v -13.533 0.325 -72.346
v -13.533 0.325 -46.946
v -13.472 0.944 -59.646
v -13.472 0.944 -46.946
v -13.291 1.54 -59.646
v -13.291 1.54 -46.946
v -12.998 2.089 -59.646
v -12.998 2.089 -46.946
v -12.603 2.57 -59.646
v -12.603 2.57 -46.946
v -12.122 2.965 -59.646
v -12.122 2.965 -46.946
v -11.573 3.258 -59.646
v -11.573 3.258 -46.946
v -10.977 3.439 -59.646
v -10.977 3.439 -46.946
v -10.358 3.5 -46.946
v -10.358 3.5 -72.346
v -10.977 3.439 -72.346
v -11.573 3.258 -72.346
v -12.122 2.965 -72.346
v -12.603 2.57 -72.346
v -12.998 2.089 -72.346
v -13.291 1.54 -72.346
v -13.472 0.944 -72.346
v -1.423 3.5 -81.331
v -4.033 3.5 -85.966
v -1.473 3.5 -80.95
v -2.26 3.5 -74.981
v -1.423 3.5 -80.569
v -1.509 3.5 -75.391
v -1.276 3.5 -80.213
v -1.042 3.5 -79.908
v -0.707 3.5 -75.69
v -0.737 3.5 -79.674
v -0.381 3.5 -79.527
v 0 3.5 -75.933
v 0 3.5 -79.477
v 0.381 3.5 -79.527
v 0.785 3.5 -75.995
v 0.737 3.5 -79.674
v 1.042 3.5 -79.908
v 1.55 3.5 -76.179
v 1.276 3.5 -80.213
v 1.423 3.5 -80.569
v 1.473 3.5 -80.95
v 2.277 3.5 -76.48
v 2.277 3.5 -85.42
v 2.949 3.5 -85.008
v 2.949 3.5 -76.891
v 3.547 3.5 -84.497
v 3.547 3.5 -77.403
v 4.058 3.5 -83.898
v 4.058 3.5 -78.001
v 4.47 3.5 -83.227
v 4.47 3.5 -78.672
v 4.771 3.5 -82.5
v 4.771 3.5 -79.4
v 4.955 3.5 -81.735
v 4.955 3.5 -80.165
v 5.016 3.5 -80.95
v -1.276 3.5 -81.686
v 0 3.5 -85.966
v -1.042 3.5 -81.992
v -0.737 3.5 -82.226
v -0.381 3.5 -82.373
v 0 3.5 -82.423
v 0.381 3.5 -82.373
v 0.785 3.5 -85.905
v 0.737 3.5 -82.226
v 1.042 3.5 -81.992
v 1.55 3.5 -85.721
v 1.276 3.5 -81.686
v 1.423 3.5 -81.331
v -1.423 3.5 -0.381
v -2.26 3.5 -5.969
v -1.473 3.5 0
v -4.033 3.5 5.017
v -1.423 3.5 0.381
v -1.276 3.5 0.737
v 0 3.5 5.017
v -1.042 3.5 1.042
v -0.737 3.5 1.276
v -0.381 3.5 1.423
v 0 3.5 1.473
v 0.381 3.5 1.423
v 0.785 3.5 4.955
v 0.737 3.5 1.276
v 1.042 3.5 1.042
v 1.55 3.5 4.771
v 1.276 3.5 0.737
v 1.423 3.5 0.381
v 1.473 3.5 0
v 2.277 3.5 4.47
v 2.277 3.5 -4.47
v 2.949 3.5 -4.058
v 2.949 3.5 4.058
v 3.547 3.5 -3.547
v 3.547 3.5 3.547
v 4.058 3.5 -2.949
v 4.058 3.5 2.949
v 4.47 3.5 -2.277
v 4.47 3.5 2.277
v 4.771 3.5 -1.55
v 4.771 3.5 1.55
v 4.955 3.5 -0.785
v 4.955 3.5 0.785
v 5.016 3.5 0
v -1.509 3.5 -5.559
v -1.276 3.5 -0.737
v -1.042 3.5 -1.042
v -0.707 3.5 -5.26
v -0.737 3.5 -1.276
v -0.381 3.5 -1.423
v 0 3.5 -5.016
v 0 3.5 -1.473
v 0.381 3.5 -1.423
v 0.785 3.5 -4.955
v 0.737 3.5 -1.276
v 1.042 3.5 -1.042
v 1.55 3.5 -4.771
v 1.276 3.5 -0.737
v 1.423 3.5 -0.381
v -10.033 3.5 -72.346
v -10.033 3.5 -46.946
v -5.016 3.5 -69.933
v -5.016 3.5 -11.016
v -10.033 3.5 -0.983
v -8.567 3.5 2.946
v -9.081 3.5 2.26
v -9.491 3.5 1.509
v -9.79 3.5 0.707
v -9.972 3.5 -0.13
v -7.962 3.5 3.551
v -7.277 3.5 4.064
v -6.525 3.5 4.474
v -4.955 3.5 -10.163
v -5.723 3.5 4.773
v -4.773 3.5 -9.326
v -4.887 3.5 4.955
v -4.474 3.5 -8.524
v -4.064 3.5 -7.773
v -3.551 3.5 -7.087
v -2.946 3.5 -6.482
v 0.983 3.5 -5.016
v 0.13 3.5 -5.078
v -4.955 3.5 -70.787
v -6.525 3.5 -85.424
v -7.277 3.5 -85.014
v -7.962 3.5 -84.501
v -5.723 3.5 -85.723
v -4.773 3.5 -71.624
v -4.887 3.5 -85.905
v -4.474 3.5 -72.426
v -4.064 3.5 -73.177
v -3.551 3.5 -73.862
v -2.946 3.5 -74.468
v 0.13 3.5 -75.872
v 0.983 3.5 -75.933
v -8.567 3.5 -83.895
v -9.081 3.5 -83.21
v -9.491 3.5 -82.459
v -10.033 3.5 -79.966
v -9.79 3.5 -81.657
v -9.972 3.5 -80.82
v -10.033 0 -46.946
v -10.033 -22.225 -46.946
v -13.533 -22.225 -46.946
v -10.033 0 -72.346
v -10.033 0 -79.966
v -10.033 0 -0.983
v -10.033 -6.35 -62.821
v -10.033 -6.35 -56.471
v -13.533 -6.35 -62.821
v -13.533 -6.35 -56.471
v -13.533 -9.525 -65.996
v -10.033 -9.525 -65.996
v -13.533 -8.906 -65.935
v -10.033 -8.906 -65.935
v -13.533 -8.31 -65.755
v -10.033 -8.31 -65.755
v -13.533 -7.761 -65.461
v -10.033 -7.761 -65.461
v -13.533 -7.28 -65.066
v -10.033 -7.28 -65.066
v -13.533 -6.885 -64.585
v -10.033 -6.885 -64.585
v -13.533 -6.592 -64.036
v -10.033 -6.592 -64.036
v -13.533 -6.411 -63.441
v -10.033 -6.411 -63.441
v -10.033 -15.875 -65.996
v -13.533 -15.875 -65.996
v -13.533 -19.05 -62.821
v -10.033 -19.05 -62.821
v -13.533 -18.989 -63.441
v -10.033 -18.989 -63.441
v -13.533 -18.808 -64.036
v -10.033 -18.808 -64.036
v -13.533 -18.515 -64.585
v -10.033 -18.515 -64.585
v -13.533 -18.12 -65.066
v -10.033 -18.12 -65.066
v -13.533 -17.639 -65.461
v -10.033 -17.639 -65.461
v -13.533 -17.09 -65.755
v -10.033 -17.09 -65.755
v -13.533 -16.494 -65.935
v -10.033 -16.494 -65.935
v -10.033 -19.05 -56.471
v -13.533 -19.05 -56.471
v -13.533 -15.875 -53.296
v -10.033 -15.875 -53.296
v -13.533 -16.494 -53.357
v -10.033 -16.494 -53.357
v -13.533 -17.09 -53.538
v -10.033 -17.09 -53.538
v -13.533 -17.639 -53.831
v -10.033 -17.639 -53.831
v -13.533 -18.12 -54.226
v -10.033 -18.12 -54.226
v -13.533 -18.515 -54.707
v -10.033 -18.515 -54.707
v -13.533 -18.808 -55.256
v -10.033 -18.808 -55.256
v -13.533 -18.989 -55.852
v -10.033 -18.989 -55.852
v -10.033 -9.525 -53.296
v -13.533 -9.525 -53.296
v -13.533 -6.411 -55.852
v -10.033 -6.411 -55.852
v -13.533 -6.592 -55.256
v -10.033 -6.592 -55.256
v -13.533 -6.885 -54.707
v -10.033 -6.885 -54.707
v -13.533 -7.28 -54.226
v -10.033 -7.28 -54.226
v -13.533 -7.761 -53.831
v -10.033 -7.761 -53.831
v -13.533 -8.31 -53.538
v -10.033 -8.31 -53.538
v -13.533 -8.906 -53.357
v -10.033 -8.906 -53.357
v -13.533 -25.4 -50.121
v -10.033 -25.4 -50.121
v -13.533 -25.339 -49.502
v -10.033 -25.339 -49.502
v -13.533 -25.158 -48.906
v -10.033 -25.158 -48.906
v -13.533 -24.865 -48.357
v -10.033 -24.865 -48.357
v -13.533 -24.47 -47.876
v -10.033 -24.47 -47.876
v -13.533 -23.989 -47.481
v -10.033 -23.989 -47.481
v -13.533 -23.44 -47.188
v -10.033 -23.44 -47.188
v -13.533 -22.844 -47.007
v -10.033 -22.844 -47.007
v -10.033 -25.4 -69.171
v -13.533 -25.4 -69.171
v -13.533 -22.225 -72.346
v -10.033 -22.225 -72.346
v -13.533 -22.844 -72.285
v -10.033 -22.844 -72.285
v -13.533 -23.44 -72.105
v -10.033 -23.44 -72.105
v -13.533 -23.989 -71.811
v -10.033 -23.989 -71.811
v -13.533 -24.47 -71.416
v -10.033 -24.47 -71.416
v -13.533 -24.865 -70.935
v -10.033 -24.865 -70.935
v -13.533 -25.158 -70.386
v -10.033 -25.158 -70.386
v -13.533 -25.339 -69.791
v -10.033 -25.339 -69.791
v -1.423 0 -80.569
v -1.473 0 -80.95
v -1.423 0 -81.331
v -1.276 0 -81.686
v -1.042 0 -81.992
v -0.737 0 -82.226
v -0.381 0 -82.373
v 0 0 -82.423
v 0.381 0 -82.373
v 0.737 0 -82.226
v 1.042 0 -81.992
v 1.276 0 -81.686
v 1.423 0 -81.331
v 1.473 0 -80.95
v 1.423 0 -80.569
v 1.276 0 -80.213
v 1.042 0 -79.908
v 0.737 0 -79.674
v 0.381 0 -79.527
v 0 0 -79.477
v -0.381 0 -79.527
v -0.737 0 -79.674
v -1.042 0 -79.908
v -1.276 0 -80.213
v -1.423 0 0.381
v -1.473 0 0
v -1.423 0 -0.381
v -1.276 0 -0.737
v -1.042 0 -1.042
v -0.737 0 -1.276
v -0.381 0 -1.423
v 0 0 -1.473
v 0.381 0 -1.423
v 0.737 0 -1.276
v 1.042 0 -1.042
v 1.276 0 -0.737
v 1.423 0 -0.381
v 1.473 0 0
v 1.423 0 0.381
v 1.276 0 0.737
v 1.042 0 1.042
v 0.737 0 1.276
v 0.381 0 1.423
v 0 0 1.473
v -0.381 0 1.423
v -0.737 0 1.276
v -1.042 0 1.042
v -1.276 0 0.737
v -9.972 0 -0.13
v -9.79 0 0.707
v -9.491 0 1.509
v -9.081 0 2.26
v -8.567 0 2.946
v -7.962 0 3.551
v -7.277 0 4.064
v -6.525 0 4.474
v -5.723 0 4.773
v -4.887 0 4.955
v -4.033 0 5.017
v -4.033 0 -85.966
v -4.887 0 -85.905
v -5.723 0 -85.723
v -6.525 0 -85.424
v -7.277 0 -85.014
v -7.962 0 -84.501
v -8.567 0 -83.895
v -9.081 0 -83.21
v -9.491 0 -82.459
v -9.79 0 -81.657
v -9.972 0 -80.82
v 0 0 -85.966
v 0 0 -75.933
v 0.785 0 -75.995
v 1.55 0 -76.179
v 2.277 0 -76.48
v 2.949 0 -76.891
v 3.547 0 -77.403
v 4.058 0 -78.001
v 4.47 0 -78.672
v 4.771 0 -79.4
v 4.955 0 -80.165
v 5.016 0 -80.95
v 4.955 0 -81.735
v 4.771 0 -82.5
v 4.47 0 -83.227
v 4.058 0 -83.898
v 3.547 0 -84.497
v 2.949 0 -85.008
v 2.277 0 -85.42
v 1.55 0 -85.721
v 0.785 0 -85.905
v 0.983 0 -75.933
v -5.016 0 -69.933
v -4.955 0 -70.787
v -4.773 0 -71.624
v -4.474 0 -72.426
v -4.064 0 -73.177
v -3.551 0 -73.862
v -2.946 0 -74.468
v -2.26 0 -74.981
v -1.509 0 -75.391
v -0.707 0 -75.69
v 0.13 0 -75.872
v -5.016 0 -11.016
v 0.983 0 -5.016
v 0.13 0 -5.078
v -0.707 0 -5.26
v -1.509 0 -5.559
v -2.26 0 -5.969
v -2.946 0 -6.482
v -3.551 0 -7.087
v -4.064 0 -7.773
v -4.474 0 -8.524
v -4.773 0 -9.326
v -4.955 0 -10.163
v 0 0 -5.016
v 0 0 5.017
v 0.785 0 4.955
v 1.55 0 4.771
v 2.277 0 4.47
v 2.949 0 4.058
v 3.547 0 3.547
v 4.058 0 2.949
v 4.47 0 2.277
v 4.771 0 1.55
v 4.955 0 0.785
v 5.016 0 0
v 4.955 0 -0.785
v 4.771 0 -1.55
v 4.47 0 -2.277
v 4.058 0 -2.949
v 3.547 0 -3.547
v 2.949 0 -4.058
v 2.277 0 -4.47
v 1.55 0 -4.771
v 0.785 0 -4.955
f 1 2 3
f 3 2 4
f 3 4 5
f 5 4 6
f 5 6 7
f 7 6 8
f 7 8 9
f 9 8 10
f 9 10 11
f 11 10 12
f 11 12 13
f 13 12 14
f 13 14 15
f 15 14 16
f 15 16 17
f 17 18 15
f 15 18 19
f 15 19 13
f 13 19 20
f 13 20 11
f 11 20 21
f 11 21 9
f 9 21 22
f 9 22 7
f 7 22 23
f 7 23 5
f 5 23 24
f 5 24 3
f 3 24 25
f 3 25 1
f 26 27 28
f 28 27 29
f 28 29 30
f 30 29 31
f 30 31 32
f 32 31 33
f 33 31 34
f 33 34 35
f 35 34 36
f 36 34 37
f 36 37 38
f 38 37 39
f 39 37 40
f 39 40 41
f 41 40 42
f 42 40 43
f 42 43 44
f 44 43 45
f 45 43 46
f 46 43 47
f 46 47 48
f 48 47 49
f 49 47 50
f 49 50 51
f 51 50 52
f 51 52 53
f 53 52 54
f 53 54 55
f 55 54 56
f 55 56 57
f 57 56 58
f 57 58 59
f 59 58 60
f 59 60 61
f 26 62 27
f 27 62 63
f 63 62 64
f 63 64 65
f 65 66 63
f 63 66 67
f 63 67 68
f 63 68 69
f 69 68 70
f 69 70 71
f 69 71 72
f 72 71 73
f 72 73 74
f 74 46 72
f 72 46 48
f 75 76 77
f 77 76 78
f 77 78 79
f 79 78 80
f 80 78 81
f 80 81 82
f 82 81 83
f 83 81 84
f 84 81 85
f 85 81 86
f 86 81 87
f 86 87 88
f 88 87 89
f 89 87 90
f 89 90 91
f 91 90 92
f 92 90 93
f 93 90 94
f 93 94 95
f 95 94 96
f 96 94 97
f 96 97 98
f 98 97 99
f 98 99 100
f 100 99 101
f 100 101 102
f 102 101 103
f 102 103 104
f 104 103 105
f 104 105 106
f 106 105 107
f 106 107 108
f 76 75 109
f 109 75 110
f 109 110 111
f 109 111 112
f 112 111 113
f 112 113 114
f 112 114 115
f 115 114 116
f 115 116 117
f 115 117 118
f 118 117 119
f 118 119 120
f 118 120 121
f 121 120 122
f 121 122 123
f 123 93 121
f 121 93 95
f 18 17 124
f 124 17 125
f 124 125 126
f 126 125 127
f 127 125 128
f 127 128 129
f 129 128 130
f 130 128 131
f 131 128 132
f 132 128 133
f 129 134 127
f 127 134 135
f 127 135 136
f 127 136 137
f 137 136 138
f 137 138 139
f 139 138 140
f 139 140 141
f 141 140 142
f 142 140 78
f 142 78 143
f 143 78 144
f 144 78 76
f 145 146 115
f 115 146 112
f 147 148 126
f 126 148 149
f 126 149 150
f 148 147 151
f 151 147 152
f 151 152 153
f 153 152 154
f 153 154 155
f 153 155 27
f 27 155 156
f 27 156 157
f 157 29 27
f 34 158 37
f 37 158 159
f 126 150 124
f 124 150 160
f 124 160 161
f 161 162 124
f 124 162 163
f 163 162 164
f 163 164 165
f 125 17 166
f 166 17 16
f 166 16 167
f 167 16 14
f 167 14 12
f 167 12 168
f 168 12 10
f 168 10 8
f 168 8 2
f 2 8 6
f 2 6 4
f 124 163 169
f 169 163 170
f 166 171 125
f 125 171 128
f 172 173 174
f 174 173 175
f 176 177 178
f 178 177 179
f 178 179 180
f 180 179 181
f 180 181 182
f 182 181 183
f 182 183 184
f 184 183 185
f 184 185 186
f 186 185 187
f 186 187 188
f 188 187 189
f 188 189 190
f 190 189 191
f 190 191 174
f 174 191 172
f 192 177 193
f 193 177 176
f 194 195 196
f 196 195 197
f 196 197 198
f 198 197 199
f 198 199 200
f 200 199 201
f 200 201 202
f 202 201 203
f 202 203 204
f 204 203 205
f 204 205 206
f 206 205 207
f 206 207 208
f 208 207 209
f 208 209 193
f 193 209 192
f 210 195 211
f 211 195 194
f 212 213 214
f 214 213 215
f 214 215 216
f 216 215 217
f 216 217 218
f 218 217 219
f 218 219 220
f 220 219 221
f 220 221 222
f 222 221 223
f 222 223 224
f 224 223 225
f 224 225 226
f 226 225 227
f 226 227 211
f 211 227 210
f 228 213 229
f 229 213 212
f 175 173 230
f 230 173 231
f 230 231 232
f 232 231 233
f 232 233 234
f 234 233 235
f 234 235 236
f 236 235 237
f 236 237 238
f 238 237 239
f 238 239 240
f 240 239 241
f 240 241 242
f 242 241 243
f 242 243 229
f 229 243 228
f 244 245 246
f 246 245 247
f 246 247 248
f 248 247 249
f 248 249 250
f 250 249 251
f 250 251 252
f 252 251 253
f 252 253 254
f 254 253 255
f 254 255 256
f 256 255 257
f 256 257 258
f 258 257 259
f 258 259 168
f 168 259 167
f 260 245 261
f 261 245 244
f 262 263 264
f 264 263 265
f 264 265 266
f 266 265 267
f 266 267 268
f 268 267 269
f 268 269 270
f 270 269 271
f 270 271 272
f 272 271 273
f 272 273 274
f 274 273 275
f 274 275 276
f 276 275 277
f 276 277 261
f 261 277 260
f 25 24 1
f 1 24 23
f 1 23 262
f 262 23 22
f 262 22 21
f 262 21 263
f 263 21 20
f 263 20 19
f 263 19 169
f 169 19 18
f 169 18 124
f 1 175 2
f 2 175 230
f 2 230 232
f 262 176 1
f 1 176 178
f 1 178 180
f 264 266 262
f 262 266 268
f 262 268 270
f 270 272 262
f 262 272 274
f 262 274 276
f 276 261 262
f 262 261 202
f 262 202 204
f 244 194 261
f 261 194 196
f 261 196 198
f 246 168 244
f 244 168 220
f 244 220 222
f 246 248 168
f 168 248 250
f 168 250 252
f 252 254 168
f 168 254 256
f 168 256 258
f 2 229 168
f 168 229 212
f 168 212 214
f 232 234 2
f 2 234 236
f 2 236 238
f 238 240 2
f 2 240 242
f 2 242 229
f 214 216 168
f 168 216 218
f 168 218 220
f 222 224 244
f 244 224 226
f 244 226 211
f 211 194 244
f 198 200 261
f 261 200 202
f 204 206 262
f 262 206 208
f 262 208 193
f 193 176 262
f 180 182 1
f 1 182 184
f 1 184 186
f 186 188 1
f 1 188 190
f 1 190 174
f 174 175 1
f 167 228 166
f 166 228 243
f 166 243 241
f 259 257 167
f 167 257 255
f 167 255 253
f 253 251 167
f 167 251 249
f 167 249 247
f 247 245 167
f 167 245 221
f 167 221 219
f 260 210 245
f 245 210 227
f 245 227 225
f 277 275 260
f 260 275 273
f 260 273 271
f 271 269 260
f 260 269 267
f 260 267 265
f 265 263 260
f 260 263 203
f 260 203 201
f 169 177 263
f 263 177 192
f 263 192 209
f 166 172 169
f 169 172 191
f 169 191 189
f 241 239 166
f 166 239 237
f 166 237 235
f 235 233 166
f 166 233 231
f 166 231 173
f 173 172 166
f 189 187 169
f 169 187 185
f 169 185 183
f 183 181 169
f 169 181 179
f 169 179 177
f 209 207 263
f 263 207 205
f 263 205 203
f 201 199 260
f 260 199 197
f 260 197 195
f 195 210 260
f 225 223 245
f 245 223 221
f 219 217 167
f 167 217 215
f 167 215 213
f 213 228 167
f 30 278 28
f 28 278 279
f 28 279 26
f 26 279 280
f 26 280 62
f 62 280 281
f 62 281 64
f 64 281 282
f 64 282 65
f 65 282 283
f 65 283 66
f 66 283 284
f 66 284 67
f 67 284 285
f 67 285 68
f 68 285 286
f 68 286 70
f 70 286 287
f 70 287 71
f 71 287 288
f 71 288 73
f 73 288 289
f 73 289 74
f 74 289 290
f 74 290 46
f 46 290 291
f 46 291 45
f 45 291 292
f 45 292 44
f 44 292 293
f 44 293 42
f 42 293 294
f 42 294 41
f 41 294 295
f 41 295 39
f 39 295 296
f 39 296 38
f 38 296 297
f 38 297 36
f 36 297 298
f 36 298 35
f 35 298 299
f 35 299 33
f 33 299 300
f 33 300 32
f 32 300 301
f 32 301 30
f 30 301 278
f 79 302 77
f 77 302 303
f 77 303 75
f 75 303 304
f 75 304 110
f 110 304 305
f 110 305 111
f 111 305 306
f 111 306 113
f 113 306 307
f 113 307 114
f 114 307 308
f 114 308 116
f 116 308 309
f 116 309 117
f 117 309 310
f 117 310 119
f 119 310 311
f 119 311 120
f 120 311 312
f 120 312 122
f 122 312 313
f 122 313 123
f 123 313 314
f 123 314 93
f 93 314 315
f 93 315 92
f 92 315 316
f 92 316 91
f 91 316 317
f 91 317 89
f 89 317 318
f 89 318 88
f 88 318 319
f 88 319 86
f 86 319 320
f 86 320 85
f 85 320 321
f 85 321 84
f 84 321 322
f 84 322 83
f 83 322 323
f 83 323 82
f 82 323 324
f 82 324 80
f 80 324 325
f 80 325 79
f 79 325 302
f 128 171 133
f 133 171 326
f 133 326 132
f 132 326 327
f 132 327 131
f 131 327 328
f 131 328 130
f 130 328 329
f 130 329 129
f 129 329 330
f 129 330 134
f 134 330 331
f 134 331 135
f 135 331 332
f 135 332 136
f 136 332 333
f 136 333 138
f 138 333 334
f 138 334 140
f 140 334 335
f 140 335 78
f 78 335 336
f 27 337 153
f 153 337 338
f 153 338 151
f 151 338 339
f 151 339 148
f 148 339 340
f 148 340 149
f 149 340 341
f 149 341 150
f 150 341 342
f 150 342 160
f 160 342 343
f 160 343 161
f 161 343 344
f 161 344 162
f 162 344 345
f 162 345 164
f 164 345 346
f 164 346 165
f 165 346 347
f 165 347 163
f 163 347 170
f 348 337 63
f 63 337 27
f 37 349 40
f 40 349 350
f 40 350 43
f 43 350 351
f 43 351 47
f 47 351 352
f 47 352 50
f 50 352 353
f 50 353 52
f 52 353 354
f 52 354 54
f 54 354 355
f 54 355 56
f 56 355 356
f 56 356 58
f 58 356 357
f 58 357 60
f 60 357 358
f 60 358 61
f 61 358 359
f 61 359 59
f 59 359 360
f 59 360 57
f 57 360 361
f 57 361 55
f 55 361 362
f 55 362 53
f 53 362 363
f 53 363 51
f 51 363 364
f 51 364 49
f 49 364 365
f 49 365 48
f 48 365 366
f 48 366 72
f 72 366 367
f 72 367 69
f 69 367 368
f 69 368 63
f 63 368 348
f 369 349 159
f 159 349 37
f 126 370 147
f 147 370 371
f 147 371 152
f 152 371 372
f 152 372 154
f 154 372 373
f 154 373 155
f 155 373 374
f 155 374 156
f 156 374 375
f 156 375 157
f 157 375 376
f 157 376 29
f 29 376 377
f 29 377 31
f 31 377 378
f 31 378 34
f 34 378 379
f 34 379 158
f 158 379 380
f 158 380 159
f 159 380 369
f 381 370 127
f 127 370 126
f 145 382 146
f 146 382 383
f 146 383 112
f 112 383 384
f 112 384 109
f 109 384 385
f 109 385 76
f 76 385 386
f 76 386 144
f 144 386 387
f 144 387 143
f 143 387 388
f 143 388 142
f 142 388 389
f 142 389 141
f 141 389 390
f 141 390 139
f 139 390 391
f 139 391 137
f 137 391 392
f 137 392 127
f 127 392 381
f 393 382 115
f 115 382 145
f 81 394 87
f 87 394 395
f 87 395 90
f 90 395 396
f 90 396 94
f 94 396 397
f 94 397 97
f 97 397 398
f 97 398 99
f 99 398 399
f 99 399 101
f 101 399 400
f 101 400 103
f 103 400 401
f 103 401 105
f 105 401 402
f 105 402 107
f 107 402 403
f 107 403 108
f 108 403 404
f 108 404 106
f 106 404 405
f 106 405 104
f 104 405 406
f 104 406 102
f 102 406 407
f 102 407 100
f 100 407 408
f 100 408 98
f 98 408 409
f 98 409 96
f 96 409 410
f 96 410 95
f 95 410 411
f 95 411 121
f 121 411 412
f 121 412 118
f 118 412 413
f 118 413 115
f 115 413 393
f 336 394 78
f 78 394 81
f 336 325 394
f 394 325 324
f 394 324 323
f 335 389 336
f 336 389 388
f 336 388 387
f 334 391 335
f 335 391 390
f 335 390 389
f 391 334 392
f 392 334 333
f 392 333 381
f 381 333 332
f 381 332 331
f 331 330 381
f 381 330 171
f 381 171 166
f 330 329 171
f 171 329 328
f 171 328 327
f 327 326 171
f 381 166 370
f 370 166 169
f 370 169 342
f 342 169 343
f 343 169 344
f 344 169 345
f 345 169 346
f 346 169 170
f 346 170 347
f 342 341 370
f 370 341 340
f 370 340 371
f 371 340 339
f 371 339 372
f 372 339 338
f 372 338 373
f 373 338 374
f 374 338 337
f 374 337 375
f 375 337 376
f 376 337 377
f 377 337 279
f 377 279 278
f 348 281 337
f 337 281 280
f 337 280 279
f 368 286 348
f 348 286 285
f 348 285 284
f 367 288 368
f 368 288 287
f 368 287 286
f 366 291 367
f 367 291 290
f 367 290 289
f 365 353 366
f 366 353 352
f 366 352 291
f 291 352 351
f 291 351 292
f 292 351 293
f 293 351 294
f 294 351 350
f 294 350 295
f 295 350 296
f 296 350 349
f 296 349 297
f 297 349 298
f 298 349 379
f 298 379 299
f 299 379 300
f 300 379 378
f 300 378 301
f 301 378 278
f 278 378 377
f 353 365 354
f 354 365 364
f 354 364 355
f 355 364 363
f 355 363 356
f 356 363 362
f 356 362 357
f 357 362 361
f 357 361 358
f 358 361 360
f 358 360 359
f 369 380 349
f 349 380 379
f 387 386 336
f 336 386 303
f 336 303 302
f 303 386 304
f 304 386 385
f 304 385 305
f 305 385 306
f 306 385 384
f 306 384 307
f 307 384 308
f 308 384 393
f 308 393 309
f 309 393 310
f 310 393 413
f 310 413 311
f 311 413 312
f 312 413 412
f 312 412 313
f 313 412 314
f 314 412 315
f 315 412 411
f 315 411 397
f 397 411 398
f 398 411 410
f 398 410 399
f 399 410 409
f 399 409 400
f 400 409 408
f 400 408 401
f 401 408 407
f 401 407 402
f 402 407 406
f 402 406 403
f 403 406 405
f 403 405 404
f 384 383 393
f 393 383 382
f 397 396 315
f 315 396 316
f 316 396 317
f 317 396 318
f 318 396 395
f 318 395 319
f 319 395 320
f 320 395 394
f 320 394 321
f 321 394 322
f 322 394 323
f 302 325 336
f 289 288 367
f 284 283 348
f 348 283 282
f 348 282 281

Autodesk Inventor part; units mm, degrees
ref_plane "YZ Plane" through (0, 0, 0) normal (1, 0, 0) x (0, 1, 0)
ref_plane "XZ Plane" through (0, 0, 0) normal (0, 1, 0) x (-1, 0, 0)
ref_plane "XY Plane" through (0, 0, 0) normal (0, 0, 1) x (1, 0, 0)
sketch "Sketch1" plane through (0, 0, 0) normal (0, 1, 0) x (-1, 0, 0)
  circle A0 centre (0, 0) radius 1.4732
  circle A1 centre (0, -80.9498) radius 1.4732
  circle A2 centre (0, 0) radius 5.0165
  circle A3 centre (0, -80.9498) radius 5.0165
  line L0 (0, 5.0165) -> (4.033, 5.0165)
  line L1 (4.033, -85.9663) -> (0, -85.9663)
  line L2 (10.033, -79.9663) -> (10.033, -0.9835)
  line L3 (0, -5.0165) -> (-0.9835, -5.0165)
  line L4 (5.0165, -11.0165) -> (5.0165, -69.9333)
  line L5 (-0.9835, -75.9333) -> (0, -75.9333)
  arc A4 (10.033, -0.9835) -> (4.033, 5.0165) centre (4.033, -0.9835) ccw
  arc A5 (4.033, -85.9663) -> (10.033, -79.9663) centre (4.033, -79.9663) ccw
  arc A6 (5.0165, -11.0165) -> (-0.9835, -5.0165) centre (-0.9835, -11.0165) ccw
  arc A7 (-0.9835, -75.9333) -> (5.0165, -69.9333) centre (-0.9835, -69.9333) ccw
  point P0 (10.033, 5.0165)
  dimension "d0" = 2.9464
  dimension "d2" = 2.9464
  dimension "d3" = 10.033
  dimension "d4" = 10.033
  dimension "d7" = 80.9498
  dimension "d8" = 10.033
  dimension "d9" = 6
  dimension "d10" = 6
  dimension "d11" = 6
  dimension "d12" = 6
extrude "Extrusion1" add sketch "Sketch1" along normal blind 3.5
sketch "Sketch2" plane through (-10.033, 0, -79.9663) normal (-1, 0, 0) x (0, 0, 1)
  line L0 (0, 0) -> (0, 3.5) projected
  line L1 (0, 0) -> (7.62, 0)
  line L2 (0, 0) -> (78.9828, 0) projected
  line L3 (7.62, 0) -> (7.62, -22.225)
  line L4 (7.62, 0) -> (33.02, 0)
  line L5 (68.9498, 0) -> (10.033, 0) projected
  line L6 (33.02, 0) -> (33.02, -22.225)
  line L7 (29.845, -25.4) -> (10.795, -25.4)
  line L8 (7.62, 0) -> (19.2419, 0) construction
  line L9 (33.02, 0) -> (44.6419, 0) construction
  line L10 (23.495, -6.35) -> (17.145, -6.35)
  line L11 (17.145, -19.05) -> (23.495, -19.05)
  line L12 (26.67, -15.875) -> (26.67, -9.525)
  line L13 (13.97, -9.525) -> (13.97, -15.875)
  arc A0 (17.145, -6.35) -> (13.97, -9.525) centre (17.145, -9.525) ccw
  arc A1 (26.67, -9.525) -> (23.495, -6.35) centre (23.495, -9.525) ccw
  arc A2 (23.495, -19.05) -> (26.67, -15.875) centre (23.495, -15.875) ccw
  arc A3 (13.97, -15.875) -> (17.145, -19.05) centre (17.145, -15.875) ccw
  arc A4 (7.62, -22.225) -> (10.795, -25.4) centre (10.795, -22.225) ccw
  arc A5 (29.845, -25.4) -> (33.02, -22.225) centre (29.845, -22.225) ccw
  line L14 (78.9828, 0) -> (78.9828, 3.5) projected
  point P0 (79.9663, 0)
  point P1 (7.62, -25.4)
  point P2 (13.97, -6.35)
  point P3 (33.02, 0)
  point P4 (78.9828, 1.75)
  dimension "d15" = 7.62
  dimension "d16" = 25.4
  dimension "d17" = 25.4
  dimension "d19" = 6.35
  dimension "d22" = 3.175
  dimension "d23" = 3.175
  dimension "d24" = 3.175
  dimension "d25" = 3.175
  dimension "d26" = 3.175
  dimension "d27" = 3.175
  dimension "d33" = 78.9828
extrude "Extrusion2" add sketch "Sketch2" along normal blind 3.5
sketch "Sketch4" plane through (-10.033, 0, -46.9463) normal (0, 1, 0) x (1, 0, 0)
  line L0 (0, 25.4) -> (-3.5, 25.4) projected
  line L1 (0, 25.4) -> (-3.5, 25.4)
  line L2 (0, 0) -> (-3.5, 0) projected
  line L3 (-3.5, 25.4) -> (-3.5, 0)
  line L4 (-3.5, 0) -> (0, 0)
  line L5 (0, 0) -> (0, 25.4)
  point P0 (10.033, -46.9463)
extrude "Extrusion3" add sketch "Sketch4" along normal blind 3.5
fillet "Fillet1" radius 3.175 1 edges at (-13.533, 3.5, -59.6463)
properties part number "sidemount1_3DPrint"
